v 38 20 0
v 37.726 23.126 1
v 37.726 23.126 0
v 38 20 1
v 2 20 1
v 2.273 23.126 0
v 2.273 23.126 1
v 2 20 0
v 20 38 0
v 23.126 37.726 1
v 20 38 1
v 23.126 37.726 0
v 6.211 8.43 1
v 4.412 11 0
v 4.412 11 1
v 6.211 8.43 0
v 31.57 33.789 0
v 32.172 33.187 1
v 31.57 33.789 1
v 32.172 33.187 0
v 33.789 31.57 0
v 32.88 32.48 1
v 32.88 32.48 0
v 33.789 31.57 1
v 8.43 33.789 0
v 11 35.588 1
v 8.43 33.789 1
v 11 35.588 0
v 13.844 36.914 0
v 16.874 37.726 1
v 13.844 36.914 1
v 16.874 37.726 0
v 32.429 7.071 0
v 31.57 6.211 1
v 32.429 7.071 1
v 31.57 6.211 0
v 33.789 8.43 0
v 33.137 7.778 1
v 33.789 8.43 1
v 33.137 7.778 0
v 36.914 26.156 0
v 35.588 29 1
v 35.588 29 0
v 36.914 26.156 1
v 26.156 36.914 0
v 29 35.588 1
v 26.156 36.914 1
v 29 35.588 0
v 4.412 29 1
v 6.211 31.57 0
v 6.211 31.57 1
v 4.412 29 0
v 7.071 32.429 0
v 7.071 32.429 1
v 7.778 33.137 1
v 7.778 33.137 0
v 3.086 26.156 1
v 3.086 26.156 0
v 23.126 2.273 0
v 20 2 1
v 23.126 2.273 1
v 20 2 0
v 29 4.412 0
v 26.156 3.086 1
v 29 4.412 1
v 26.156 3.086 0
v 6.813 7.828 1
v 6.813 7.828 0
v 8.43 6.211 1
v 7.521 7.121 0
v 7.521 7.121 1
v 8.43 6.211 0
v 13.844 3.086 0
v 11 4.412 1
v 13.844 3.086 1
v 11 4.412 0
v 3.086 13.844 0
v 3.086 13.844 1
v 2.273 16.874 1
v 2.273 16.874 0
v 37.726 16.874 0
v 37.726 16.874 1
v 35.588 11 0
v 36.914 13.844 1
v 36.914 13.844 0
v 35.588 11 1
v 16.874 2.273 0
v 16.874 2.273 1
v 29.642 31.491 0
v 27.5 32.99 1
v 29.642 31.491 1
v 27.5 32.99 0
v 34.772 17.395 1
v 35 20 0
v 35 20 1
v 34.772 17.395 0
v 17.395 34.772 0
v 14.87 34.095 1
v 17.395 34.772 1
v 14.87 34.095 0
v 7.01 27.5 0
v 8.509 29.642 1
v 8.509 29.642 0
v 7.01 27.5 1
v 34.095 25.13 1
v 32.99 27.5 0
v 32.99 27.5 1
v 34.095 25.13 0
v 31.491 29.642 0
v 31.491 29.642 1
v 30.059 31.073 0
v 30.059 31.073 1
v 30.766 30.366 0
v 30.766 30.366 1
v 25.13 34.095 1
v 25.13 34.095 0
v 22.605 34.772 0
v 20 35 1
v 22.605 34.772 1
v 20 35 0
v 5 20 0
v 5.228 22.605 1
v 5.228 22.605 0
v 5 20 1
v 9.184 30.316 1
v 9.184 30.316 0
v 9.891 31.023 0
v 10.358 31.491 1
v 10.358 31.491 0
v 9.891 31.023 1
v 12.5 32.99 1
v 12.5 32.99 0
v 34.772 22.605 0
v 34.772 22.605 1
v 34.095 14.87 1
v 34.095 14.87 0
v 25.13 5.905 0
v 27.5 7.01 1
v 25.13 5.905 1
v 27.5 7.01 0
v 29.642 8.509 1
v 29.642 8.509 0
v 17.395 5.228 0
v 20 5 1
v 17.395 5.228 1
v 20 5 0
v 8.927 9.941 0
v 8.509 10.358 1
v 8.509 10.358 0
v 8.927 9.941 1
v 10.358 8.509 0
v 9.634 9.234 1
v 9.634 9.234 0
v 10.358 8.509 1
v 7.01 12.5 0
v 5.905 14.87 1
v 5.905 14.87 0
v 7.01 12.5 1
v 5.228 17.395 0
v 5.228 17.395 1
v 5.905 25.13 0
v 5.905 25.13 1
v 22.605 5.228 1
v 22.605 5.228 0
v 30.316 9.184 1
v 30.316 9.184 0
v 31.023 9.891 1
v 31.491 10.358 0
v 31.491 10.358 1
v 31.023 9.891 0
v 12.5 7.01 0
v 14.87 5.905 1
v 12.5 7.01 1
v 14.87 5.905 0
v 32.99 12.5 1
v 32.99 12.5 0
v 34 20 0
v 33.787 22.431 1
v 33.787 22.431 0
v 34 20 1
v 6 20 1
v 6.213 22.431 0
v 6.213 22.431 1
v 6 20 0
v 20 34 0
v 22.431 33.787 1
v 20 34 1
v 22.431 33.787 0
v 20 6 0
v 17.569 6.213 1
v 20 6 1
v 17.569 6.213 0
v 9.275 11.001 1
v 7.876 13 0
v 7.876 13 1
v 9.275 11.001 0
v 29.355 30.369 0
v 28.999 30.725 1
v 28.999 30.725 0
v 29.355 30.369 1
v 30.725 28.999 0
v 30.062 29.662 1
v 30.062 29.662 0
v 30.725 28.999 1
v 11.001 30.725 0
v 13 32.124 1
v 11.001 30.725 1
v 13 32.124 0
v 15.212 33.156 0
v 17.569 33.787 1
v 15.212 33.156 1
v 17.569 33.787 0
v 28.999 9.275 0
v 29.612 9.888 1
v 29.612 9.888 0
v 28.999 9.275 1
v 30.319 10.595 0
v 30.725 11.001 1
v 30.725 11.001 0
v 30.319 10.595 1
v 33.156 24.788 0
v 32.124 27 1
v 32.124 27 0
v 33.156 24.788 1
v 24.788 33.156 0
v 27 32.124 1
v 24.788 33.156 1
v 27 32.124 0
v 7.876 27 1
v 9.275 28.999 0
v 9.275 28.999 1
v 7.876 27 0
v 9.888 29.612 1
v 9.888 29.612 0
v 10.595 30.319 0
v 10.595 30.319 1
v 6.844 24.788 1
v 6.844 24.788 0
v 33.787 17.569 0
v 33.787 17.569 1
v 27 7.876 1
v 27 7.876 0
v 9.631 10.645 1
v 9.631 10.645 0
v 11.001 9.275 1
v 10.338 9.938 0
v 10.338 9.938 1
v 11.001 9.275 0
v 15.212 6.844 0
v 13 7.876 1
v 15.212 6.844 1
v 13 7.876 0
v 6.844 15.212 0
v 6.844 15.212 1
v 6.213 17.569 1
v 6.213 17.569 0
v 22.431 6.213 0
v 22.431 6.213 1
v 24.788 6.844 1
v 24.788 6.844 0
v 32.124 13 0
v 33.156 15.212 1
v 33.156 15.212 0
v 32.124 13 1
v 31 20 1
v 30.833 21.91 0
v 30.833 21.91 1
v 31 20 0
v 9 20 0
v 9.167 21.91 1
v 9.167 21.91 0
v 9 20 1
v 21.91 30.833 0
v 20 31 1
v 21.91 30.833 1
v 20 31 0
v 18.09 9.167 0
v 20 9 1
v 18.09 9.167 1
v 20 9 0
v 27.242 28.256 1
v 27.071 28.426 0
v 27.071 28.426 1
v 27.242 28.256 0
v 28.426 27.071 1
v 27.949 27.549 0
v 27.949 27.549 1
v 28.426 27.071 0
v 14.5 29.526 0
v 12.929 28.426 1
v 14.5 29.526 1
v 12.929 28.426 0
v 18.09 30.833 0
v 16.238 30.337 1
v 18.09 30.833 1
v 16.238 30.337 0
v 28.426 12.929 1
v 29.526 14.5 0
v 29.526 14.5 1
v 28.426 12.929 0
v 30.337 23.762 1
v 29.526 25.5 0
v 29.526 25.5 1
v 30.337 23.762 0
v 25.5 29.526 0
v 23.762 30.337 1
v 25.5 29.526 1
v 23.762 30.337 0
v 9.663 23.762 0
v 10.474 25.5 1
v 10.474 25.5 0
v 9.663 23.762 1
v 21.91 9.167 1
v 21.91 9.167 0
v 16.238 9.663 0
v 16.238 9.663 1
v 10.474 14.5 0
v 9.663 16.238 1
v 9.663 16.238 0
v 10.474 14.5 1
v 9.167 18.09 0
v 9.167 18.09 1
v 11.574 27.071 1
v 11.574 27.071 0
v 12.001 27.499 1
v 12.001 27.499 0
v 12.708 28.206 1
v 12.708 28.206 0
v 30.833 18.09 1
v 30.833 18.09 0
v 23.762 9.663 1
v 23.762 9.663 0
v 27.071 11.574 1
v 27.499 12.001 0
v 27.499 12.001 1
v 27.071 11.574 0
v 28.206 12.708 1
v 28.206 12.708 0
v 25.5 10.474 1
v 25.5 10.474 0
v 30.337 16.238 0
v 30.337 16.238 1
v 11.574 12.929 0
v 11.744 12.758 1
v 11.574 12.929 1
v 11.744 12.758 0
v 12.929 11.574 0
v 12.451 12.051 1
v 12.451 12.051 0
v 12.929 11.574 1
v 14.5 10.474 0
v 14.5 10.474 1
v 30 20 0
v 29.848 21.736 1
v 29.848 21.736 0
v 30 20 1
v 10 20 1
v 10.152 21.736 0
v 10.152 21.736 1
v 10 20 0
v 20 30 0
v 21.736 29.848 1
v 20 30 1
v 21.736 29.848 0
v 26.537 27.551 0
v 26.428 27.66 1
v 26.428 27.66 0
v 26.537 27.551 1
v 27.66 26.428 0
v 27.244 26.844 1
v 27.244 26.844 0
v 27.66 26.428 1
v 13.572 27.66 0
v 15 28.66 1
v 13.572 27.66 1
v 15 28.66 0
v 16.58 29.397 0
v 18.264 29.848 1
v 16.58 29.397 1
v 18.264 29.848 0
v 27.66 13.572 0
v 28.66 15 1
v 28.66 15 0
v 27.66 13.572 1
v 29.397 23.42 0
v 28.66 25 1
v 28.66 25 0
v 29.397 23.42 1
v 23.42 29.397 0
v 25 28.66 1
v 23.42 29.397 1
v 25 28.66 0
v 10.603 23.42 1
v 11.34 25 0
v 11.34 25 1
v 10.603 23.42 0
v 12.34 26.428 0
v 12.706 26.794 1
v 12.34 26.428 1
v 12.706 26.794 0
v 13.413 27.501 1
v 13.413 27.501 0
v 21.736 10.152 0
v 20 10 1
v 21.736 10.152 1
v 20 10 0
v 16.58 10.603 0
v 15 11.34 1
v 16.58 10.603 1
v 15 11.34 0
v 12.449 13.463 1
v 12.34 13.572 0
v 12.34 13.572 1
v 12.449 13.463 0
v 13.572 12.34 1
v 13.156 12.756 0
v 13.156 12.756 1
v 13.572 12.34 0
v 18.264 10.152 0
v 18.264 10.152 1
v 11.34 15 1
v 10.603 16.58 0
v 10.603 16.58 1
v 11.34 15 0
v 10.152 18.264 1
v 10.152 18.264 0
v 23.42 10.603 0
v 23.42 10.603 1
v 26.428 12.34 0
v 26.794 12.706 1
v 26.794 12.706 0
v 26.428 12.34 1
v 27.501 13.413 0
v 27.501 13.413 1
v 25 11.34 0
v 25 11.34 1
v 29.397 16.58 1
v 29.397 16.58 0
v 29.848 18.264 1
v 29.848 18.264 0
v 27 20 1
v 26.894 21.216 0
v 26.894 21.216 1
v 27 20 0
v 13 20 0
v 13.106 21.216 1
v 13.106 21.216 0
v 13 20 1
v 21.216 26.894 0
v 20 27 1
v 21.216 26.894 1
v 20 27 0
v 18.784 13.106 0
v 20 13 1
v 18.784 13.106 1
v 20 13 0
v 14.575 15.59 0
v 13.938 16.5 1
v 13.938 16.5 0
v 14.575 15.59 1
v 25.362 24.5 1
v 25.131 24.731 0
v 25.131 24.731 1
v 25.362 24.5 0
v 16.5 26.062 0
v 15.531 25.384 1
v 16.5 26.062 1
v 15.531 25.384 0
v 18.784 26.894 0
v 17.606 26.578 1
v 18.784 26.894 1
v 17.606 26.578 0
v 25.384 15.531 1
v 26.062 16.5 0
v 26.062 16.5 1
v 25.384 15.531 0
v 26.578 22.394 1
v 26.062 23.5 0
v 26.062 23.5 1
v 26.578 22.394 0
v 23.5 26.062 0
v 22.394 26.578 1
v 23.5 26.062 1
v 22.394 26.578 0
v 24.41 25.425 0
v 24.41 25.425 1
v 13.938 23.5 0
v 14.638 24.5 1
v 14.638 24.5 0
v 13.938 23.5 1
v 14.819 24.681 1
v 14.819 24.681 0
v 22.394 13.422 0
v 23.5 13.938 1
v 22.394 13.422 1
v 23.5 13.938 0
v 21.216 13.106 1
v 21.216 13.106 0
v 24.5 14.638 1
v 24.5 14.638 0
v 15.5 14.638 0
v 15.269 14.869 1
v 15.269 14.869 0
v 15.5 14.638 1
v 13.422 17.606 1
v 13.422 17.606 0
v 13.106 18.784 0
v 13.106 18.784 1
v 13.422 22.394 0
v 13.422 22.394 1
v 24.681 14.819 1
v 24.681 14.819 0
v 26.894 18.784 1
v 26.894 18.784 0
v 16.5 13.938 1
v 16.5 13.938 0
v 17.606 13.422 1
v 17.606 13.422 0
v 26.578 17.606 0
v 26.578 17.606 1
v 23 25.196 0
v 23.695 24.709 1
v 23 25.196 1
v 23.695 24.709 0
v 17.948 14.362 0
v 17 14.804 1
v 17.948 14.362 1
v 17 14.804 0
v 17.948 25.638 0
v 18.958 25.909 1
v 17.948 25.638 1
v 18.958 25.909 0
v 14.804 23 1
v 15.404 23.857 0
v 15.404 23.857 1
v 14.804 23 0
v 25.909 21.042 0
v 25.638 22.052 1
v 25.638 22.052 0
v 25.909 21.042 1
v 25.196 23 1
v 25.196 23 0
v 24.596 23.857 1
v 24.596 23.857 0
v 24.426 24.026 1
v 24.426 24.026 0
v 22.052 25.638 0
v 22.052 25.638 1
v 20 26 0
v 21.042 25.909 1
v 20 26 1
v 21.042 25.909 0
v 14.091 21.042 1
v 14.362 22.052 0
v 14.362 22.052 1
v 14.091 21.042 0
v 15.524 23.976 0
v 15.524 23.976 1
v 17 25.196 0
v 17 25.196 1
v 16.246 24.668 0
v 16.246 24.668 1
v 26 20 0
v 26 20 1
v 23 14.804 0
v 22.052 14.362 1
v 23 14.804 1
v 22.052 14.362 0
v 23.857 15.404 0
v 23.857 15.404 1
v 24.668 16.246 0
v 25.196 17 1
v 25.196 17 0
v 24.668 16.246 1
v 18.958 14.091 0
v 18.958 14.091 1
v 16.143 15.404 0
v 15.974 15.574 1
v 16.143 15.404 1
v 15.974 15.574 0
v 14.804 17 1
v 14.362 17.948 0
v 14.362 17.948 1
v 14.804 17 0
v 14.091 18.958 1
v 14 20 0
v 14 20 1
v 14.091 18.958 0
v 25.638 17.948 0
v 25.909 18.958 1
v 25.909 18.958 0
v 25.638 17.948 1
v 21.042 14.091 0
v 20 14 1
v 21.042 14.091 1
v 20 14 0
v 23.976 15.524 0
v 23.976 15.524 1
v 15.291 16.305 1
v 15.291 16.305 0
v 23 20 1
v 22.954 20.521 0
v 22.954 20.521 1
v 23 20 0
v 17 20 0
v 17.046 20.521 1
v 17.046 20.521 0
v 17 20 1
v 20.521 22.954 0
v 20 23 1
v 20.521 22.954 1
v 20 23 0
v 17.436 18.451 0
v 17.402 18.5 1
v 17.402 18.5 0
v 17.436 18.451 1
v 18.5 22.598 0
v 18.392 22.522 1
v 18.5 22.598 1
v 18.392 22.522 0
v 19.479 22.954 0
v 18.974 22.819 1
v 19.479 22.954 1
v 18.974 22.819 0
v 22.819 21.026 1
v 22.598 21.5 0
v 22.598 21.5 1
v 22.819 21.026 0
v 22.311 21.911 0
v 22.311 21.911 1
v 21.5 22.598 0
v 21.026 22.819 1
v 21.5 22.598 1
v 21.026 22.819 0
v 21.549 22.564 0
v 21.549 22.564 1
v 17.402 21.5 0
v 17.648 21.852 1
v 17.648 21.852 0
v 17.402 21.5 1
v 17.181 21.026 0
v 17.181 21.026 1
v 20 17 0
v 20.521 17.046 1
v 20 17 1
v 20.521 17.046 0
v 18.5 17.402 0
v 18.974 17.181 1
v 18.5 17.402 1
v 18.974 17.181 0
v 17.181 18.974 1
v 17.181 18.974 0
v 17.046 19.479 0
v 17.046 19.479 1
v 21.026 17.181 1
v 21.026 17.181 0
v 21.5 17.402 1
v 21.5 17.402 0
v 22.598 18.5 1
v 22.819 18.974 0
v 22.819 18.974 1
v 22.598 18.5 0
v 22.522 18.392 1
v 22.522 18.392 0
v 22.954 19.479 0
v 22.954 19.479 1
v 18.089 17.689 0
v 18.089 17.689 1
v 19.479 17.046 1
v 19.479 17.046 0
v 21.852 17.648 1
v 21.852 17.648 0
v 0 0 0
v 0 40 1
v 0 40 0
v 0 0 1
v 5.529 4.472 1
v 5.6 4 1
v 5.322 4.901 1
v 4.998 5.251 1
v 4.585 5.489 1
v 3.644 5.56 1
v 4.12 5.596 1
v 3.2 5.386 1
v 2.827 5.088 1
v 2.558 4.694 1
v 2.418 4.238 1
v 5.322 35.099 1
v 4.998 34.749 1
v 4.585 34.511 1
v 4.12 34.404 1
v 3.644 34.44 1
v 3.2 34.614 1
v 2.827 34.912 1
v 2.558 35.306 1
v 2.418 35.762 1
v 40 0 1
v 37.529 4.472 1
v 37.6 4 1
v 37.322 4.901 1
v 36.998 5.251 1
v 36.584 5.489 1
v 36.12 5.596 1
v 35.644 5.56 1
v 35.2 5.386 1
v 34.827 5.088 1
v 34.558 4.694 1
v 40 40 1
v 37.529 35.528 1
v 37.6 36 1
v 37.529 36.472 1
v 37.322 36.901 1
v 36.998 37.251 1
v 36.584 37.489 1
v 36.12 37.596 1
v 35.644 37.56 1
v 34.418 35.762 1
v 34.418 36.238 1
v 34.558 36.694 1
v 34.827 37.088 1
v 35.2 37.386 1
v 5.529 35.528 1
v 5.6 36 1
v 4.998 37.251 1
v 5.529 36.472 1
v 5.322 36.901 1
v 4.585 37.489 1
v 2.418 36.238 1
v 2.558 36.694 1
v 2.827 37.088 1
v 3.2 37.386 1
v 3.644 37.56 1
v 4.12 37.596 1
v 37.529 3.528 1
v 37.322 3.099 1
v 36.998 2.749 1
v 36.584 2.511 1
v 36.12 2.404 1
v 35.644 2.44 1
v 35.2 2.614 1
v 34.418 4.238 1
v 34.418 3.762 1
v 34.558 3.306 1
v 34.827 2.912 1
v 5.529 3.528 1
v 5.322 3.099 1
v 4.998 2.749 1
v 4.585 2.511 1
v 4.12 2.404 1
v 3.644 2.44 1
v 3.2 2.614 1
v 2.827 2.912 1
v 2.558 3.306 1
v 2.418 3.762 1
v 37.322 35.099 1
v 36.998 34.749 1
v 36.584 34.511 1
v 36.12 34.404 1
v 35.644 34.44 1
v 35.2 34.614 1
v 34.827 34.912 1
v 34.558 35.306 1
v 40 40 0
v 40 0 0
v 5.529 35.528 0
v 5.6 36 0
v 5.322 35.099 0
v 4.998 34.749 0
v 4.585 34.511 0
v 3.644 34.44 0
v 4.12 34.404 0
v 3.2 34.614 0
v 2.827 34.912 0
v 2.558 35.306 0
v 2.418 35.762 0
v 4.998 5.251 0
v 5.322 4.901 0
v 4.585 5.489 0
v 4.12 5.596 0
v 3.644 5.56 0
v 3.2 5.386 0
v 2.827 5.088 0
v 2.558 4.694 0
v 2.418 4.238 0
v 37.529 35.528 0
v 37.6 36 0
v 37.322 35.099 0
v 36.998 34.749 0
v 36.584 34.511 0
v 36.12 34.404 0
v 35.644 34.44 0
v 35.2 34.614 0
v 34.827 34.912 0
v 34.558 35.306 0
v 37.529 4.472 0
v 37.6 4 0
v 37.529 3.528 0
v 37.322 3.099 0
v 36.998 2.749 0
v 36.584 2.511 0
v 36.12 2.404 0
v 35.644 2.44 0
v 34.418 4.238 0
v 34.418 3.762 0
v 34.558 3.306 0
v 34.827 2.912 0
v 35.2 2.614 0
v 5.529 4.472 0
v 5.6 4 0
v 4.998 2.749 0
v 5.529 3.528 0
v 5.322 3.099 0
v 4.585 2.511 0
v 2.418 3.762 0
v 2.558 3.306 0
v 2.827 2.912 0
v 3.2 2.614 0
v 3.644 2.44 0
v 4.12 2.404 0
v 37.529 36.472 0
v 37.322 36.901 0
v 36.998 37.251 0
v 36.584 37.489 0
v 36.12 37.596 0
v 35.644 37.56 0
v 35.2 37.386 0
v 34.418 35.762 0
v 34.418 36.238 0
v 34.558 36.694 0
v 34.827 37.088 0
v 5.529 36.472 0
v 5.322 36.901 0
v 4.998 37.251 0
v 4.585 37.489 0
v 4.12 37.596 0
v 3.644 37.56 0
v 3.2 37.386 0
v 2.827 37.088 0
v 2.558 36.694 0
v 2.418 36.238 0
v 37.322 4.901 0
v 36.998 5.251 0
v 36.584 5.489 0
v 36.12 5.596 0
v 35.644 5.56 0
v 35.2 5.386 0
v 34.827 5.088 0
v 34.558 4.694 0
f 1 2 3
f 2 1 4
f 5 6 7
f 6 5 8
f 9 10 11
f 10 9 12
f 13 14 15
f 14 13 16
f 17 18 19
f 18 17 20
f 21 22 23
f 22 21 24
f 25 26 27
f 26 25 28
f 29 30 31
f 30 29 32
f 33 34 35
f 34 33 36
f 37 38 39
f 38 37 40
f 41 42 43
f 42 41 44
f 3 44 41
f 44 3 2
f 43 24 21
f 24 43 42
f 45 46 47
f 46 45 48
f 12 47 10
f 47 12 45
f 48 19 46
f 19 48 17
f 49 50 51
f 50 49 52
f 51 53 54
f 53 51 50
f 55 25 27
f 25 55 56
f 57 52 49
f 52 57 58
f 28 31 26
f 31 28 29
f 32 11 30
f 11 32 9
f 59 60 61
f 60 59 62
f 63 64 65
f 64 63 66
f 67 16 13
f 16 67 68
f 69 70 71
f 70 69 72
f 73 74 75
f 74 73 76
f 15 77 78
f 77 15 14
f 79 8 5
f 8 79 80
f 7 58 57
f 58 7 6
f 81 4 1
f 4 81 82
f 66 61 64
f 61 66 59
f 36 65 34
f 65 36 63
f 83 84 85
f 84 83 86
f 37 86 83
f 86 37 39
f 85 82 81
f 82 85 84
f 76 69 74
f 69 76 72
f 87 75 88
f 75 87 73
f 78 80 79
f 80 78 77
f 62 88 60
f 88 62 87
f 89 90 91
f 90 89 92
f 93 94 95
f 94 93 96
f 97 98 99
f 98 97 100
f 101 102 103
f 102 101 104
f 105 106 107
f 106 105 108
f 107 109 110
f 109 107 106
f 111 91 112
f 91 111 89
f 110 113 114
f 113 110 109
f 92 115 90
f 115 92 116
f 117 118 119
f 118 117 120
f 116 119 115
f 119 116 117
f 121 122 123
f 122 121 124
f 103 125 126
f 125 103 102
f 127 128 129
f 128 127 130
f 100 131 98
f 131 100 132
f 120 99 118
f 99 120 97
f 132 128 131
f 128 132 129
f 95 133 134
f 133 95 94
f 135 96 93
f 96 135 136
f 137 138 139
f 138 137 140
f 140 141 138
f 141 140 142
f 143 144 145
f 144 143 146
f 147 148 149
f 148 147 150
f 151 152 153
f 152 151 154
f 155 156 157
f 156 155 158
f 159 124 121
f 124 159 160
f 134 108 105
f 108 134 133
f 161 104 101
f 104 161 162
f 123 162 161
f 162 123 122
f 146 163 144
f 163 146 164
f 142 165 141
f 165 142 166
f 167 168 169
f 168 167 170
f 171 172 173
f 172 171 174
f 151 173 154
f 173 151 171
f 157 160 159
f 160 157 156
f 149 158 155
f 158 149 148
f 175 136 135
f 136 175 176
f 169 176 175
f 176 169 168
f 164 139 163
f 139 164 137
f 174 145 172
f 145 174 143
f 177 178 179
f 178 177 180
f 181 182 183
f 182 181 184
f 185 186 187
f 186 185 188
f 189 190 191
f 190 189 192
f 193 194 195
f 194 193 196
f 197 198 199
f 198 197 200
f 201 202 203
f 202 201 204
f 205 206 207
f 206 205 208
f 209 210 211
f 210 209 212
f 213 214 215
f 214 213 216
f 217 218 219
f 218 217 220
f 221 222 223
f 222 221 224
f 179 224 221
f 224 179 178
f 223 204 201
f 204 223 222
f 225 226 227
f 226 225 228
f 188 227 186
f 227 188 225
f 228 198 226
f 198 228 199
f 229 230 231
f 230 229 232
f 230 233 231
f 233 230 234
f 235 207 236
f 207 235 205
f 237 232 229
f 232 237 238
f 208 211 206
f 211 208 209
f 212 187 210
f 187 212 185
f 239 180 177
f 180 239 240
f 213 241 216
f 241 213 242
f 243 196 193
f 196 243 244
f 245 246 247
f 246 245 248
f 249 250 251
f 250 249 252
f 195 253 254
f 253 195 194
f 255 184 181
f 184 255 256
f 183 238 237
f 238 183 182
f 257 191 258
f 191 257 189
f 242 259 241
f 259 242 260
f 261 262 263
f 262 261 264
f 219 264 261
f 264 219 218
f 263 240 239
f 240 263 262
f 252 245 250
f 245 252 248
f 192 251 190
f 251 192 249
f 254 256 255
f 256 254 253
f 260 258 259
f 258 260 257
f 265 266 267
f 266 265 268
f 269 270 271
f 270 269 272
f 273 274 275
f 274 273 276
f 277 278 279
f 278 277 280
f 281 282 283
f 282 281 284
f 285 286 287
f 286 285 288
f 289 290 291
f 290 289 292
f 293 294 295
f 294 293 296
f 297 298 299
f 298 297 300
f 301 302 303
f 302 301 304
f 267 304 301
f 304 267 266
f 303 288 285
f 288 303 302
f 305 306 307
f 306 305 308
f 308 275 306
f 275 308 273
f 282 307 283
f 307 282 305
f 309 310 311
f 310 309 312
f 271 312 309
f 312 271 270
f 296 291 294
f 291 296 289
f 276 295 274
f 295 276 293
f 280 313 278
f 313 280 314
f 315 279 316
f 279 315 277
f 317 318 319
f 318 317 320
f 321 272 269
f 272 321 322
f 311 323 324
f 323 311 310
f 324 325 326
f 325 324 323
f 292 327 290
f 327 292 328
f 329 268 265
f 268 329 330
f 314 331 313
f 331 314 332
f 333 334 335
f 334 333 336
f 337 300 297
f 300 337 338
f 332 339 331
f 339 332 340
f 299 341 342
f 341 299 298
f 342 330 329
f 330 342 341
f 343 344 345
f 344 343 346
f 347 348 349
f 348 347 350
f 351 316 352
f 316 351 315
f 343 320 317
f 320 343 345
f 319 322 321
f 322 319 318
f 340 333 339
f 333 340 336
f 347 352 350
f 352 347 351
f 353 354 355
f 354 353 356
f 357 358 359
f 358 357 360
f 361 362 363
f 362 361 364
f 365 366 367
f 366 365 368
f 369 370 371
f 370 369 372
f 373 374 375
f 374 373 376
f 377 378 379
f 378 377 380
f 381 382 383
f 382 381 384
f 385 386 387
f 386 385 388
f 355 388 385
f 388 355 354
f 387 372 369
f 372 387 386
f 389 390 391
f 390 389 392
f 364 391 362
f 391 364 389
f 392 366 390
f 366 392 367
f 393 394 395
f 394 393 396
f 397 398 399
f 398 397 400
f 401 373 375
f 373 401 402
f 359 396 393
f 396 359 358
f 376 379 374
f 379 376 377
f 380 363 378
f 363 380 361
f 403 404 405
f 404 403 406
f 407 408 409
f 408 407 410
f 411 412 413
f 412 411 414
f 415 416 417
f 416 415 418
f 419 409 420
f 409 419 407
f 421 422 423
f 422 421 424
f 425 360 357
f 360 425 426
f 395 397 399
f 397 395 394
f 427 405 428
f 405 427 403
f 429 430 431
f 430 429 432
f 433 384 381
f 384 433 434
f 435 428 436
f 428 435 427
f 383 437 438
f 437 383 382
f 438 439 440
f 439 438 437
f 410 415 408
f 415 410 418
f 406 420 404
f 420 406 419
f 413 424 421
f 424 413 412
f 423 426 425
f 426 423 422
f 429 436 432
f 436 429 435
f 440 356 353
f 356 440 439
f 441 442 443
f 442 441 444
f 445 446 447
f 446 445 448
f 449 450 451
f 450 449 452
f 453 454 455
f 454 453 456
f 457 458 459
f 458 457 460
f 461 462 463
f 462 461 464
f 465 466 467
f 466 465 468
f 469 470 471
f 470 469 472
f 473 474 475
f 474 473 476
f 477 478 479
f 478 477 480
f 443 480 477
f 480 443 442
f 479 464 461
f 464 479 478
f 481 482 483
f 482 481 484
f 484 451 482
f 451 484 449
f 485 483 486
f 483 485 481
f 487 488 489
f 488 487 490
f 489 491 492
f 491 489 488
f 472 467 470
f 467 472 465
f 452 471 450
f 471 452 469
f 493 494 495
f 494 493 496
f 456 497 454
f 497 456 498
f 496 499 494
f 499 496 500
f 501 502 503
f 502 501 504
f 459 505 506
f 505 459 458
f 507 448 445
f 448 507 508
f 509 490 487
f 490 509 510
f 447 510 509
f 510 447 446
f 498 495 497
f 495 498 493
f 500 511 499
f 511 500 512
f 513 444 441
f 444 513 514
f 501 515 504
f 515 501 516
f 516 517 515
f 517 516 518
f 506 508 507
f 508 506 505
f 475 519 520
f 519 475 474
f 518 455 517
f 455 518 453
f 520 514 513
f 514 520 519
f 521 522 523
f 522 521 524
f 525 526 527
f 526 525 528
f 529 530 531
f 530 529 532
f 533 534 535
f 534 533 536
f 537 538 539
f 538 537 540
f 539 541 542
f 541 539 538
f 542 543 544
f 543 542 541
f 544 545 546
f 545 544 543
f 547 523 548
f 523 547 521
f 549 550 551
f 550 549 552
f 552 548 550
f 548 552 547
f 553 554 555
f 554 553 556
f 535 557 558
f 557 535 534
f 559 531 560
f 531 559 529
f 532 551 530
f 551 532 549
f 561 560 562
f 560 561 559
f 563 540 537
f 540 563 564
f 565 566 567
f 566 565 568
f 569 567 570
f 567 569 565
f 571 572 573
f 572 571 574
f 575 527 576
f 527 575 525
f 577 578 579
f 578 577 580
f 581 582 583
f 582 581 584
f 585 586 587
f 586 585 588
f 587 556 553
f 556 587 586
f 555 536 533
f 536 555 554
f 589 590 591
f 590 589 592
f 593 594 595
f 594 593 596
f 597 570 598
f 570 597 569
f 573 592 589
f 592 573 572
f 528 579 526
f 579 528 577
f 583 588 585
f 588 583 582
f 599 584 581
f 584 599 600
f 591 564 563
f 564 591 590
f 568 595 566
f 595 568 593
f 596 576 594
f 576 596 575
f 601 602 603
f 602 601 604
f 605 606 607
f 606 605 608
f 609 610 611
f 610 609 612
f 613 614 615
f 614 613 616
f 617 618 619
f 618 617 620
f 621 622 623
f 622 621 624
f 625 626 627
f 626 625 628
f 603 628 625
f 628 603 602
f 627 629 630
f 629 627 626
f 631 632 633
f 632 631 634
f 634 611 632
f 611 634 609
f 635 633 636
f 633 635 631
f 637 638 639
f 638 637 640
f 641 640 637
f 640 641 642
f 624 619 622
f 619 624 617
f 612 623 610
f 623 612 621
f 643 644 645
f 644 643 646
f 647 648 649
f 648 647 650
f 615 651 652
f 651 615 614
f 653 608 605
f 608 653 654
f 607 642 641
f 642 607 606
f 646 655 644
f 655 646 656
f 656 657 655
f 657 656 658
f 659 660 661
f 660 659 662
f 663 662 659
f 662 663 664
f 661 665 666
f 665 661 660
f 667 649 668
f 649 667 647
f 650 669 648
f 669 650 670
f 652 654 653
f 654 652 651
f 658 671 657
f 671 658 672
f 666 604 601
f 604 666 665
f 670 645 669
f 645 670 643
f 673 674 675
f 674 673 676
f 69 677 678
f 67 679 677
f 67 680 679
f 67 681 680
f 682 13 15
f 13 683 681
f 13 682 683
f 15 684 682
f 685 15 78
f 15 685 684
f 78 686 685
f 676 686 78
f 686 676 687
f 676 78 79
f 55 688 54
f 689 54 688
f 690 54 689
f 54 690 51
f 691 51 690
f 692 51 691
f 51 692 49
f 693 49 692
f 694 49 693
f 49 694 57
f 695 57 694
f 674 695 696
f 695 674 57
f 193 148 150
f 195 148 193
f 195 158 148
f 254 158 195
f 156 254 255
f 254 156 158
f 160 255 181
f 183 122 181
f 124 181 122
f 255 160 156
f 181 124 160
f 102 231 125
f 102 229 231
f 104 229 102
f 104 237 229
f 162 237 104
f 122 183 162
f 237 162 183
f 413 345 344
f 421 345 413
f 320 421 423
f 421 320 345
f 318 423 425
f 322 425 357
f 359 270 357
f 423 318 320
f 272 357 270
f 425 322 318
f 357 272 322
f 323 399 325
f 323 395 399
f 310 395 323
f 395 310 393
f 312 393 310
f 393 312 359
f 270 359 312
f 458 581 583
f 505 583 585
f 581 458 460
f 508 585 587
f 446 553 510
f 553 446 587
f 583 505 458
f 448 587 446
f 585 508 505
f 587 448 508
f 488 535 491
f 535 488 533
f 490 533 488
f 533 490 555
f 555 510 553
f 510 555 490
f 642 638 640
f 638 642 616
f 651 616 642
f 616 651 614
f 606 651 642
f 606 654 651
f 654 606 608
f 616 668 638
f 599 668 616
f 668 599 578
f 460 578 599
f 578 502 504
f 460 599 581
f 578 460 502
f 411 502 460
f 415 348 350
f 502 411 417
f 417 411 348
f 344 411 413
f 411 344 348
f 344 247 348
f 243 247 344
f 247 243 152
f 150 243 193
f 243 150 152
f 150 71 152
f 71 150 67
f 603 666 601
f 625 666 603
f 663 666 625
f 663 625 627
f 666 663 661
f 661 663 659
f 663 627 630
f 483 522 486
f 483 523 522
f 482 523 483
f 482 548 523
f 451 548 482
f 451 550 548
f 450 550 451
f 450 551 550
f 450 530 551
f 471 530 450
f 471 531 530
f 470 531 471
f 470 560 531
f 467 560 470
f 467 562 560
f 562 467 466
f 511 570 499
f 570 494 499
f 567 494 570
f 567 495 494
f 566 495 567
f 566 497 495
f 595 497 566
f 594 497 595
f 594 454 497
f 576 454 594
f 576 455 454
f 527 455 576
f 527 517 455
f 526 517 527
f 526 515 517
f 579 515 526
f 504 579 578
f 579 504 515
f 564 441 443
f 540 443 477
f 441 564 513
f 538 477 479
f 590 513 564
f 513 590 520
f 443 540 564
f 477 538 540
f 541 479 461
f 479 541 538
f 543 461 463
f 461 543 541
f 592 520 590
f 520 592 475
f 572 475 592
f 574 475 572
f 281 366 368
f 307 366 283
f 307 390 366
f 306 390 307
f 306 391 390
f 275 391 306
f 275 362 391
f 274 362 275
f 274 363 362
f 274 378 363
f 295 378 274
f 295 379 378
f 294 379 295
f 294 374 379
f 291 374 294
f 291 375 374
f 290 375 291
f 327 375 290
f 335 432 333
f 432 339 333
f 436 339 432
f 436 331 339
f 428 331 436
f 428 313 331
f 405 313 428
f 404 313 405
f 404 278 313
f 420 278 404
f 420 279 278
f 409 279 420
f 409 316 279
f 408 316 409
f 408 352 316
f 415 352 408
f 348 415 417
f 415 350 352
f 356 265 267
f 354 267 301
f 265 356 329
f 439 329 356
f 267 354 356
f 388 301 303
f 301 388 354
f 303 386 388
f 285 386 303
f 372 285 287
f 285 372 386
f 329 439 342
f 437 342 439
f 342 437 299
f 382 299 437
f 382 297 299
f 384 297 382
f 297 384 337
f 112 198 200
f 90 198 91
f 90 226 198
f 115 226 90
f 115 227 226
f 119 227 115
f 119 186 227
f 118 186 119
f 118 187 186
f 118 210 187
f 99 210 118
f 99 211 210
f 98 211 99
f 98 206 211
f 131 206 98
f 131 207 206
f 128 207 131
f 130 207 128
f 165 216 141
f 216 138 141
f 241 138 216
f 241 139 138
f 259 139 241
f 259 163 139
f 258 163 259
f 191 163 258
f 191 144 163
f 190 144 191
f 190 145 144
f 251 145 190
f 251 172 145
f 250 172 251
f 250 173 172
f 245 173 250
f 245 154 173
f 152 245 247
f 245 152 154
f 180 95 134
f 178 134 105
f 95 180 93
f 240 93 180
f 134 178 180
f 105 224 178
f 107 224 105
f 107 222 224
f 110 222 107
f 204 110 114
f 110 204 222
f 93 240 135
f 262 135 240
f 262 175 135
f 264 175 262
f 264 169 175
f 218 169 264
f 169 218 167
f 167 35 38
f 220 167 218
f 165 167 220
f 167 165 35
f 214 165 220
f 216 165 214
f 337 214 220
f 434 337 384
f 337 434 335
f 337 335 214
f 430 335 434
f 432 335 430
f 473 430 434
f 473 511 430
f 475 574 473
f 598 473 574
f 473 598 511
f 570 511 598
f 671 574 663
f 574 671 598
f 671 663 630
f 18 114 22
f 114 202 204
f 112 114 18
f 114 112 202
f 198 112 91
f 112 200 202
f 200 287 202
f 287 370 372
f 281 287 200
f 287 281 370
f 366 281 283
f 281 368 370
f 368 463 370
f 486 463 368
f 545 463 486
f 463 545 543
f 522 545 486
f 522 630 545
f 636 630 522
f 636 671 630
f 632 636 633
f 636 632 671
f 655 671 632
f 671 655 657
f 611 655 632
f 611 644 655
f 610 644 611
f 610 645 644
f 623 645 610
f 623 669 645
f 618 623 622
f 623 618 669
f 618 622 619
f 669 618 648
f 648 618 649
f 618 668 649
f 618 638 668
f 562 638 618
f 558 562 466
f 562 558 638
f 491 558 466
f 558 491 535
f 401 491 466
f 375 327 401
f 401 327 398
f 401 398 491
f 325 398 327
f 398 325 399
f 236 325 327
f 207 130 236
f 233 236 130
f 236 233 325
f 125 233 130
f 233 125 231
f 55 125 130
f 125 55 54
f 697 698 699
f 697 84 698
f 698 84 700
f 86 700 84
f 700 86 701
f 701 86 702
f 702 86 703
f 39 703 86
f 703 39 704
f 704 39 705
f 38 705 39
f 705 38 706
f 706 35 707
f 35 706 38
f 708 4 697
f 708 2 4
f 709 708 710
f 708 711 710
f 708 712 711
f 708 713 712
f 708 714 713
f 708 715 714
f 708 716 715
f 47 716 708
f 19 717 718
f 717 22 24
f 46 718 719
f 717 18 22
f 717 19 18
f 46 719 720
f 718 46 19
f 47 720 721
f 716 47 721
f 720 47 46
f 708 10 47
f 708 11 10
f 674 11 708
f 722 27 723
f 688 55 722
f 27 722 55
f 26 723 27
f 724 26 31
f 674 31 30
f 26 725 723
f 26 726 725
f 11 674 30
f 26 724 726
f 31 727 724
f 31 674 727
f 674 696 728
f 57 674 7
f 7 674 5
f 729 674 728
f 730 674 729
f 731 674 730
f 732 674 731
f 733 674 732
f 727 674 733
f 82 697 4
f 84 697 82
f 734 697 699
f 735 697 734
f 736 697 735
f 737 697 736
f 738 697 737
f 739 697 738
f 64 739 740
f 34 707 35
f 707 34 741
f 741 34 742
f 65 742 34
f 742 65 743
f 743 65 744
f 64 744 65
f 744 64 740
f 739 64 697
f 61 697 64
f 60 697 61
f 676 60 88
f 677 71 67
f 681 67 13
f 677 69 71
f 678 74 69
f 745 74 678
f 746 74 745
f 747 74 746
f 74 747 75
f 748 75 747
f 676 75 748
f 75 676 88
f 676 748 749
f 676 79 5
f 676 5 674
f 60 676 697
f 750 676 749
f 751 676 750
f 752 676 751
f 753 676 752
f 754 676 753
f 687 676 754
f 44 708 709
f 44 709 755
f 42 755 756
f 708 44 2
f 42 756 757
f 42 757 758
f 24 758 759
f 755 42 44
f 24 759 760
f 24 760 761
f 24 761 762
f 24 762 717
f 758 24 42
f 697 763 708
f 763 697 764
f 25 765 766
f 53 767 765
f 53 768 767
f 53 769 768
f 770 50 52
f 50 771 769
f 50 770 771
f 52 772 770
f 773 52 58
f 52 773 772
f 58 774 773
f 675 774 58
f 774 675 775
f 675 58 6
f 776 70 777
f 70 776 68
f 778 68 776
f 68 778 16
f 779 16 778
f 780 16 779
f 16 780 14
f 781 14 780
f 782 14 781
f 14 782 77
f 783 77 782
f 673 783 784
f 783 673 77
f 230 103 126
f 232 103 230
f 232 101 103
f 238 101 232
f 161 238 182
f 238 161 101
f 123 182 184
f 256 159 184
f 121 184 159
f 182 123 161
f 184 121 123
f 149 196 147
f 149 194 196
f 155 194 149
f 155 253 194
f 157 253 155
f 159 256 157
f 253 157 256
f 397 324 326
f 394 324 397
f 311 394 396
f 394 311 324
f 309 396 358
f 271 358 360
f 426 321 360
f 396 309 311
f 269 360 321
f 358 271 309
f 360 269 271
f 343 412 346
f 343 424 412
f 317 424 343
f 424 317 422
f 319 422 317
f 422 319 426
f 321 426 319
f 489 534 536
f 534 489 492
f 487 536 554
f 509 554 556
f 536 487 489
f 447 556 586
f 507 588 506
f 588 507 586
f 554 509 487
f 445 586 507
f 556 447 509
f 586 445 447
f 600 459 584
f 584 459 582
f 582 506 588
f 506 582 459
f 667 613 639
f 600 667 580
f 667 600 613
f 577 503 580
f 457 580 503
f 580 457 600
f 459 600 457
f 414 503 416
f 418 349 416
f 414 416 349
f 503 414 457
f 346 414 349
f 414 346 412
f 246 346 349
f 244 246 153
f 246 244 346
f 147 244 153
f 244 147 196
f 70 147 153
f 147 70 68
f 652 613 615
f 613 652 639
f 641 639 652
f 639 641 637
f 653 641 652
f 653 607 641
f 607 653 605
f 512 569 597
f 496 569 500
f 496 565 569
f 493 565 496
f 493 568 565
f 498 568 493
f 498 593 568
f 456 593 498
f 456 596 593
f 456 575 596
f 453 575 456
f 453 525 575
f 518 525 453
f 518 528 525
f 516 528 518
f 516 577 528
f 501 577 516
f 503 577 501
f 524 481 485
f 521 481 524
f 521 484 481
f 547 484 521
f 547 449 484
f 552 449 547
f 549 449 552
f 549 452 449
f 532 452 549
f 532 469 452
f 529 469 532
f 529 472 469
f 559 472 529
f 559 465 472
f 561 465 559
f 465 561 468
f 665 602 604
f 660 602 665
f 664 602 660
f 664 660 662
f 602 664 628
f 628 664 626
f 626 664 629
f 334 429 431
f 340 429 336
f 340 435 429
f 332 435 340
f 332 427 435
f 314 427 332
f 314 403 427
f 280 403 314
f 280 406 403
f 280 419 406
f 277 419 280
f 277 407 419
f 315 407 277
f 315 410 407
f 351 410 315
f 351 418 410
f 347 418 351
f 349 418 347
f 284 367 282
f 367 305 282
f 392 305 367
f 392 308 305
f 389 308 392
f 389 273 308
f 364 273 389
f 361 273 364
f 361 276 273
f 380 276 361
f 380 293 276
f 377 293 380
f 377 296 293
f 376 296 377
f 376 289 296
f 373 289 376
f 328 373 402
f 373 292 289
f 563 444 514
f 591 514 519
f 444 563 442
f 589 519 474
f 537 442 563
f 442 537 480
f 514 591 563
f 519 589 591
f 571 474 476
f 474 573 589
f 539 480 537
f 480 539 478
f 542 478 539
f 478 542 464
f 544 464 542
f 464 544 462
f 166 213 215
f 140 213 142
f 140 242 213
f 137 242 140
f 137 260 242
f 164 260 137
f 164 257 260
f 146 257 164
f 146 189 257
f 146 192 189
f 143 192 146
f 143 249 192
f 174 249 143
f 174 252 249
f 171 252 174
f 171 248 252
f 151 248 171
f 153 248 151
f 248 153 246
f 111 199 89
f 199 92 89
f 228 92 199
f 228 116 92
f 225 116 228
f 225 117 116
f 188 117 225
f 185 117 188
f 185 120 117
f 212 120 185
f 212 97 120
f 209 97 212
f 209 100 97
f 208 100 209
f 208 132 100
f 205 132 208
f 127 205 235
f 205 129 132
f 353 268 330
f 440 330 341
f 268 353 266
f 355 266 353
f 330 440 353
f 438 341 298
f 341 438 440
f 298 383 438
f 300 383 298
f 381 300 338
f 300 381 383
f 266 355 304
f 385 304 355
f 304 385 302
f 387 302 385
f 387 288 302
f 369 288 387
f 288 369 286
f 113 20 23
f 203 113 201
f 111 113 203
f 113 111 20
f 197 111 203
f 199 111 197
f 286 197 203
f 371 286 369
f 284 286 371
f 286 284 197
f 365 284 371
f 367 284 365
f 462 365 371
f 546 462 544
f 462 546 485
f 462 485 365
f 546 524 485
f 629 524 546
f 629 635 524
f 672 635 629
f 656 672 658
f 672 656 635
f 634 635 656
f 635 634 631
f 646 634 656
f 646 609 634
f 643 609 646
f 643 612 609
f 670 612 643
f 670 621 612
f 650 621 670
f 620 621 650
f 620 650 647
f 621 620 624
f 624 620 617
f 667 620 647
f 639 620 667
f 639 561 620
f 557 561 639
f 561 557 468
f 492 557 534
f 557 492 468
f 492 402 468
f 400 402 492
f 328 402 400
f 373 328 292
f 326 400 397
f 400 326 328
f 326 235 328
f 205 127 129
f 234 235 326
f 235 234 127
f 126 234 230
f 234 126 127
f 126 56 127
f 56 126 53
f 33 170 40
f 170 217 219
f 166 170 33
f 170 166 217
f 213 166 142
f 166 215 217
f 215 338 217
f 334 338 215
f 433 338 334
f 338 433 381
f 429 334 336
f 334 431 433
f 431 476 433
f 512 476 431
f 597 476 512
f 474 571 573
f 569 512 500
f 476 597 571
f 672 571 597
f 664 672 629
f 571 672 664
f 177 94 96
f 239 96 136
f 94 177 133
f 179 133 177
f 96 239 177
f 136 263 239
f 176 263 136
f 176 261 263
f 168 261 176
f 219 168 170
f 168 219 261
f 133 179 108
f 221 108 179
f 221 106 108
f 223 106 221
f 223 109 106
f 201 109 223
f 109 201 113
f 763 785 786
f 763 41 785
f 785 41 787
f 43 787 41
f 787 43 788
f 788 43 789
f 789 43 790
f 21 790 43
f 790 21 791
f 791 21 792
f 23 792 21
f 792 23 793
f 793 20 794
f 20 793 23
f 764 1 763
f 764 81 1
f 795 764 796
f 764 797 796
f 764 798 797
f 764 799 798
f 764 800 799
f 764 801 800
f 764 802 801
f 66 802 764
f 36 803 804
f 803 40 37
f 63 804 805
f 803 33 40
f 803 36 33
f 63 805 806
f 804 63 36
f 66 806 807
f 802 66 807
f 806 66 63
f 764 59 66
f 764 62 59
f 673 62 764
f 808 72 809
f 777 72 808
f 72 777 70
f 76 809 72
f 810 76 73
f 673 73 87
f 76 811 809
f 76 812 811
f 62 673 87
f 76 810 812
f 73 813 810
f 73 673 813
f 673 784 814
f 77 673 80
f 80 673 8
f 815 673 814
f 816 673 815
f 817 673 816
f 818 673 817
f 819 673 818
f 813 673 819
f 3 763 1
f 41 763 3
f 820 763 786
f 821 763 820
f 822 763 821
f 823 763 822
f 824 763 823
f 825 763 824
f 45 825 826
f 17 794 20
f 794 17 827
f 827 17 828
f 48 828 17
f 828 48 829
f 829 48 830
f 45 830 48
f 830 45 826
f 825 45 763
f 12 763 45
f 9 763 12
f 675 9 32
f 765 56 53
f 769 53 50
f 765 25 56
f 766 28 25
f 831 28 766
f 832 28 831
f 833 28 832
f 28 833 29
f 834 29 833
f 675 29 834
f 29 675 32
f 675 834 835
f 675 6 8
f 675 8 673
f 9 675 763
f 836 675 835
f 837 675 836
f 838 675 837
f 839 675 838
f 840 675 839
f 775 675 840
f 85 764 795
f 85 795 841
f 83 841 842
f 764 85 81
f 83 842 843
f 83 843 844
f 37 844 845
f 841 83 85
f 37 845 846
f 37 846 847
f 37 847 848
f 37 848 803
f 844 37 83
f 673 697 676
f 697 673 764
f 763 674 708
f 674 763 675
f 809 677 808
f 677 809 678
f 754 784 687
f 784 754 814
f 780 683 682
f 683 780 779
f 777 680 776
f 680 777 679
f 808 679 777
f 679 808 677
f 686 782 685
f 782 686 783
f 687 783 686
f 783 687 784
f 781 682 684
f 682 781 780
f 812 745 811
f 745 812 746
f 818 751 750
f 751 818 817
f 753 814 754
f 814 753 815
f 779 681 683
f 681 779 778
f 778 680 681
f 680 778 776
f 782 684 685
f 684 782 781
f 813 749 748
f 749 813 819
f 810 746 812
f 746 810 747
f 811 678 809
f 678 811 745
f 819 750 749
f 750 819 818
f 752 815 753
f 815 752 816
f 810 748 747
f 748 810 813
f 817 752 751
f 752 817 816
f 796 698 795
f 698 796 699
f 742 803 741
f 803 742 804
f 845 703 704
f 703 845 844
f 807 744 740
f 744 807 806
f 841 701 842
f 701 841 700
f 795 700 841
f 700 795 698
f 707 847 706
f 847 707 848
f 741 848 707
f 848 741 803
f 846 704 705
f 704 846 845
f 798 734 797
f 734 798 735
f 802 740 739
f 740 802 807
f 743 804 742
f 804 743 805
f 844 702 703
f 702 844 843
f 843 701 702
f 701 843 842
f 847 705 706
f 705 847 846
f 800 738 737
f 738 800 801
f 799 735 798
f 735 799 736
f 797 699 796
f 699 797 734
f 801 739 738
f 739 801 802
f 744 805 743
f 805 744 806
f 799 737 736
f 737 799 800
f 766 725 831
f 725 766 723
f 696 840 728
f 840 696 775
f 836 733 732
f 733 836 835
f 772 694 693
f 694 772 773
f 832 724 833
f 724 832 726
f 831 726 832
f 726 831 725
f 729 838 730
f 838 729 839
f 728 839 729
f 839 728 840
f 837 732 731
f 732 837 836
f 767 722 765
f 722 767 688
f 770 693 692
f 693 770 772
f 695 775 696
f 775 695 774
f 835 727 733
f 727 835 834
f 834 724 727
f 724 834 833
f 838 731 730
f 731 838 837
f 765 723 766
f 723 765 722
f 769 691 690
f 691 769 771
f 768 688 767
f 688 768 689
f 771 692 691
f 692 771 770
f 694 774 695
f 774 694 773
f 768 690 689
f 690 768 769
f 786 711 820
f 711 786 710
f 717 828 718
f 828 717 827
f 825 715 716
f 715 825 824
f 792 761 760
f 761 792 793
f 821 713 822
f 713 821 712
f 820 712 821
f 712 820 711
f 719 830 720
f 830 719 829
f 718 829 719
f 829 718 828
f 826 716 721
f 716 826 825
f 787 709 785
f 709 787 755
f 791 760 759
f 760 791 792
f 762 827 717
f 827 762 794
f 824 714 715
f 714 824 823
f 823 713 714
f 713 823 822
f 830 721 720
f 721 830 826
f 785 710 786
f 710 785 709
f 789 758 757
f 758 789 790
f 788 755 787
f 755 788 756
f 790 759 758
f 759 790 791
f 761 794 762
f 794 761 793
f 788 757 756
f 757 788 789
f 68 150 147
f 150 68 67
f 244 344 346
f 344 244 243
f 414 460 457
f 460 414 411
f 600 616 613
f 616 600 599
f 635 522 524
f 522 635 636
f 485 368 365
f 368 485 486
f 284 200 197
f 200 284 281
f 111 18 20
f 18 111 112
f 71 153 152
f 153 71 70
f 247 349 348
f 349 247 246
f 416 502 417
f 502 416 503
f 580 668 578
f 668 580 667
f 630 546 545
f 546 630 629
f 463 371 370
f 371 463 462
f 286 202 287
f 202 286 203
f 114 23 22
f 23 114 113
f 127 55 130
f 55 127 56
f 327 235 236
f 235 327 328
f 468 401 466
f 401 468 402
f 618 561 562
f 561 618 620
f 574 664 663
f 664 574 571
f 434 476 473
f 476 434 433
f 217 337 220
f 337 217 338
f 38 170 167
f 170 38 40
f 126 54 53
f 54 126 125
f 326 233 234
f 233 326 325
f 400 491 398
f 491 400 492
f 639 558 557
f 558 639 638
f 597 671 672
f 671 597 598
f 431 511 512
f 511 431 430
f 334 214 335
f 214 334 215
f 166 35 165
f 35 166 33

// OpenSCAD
difference(){
    
    cube([40,40,1]);
    
    {
     //mounting holes
     translate([4,4,0.5])
            cylinder(h=1.01, r=1.6, $fa=10, $fs=0.5, center=true);
     translate([36,4,0.5])
            cylinder(h=1.01, r=1.6, $fa=10, $fs=0.5, center=true);
     translate([4,36,0.5])
            cylinder(h=1.01, r=1.6, $fa=10, $fs=0.5, center=true);
     translate([36,36,0.5])
            cylinder(h=1.01, r=1.6, $fa=10, $fs=0.5, center=true);
     
     //rings
     translate([20,20,0.5])
     {
        difference()
        {
         cylinder(h=1.01, r=18, $fa=10, $fs=0.5, center=true);
         cylinder(h=1.01, r=15, $fa=10, $fs=0.5, center=true);  
        }
        
         difference()
        {
         cylinder(h=1.01, r=14, $fa=10, $fs=0.5, center=true);
         cylinder(h=1.01, r=11, $fa=10, $fs=0.5, center=true);  
        }
        
         difference()
        {
         cylinder(h=1.01, r=10, $fa=10, $fs=0.5, center=true);
         cylinder(h=1.01, r=7, $fa=10, $fs=0.5, center=true);  
        }
        
         difference()
        {
         cylinder(h=1.01, r=6, $fa=10, $fs=0.5, center=true);
         cylinder(h=1.01, r=3, $fa=10, $fs=0.5, center=true);  
        }
    }
        
    }
}

//diagonal
translate([6,5.6,0])
    rotate([0, 0, 45])
        cube([40,1,1]);

//diagonal
translate([6,33.5,0])
    rotate([0, 0, -45])
        cube([40,1,1]);
